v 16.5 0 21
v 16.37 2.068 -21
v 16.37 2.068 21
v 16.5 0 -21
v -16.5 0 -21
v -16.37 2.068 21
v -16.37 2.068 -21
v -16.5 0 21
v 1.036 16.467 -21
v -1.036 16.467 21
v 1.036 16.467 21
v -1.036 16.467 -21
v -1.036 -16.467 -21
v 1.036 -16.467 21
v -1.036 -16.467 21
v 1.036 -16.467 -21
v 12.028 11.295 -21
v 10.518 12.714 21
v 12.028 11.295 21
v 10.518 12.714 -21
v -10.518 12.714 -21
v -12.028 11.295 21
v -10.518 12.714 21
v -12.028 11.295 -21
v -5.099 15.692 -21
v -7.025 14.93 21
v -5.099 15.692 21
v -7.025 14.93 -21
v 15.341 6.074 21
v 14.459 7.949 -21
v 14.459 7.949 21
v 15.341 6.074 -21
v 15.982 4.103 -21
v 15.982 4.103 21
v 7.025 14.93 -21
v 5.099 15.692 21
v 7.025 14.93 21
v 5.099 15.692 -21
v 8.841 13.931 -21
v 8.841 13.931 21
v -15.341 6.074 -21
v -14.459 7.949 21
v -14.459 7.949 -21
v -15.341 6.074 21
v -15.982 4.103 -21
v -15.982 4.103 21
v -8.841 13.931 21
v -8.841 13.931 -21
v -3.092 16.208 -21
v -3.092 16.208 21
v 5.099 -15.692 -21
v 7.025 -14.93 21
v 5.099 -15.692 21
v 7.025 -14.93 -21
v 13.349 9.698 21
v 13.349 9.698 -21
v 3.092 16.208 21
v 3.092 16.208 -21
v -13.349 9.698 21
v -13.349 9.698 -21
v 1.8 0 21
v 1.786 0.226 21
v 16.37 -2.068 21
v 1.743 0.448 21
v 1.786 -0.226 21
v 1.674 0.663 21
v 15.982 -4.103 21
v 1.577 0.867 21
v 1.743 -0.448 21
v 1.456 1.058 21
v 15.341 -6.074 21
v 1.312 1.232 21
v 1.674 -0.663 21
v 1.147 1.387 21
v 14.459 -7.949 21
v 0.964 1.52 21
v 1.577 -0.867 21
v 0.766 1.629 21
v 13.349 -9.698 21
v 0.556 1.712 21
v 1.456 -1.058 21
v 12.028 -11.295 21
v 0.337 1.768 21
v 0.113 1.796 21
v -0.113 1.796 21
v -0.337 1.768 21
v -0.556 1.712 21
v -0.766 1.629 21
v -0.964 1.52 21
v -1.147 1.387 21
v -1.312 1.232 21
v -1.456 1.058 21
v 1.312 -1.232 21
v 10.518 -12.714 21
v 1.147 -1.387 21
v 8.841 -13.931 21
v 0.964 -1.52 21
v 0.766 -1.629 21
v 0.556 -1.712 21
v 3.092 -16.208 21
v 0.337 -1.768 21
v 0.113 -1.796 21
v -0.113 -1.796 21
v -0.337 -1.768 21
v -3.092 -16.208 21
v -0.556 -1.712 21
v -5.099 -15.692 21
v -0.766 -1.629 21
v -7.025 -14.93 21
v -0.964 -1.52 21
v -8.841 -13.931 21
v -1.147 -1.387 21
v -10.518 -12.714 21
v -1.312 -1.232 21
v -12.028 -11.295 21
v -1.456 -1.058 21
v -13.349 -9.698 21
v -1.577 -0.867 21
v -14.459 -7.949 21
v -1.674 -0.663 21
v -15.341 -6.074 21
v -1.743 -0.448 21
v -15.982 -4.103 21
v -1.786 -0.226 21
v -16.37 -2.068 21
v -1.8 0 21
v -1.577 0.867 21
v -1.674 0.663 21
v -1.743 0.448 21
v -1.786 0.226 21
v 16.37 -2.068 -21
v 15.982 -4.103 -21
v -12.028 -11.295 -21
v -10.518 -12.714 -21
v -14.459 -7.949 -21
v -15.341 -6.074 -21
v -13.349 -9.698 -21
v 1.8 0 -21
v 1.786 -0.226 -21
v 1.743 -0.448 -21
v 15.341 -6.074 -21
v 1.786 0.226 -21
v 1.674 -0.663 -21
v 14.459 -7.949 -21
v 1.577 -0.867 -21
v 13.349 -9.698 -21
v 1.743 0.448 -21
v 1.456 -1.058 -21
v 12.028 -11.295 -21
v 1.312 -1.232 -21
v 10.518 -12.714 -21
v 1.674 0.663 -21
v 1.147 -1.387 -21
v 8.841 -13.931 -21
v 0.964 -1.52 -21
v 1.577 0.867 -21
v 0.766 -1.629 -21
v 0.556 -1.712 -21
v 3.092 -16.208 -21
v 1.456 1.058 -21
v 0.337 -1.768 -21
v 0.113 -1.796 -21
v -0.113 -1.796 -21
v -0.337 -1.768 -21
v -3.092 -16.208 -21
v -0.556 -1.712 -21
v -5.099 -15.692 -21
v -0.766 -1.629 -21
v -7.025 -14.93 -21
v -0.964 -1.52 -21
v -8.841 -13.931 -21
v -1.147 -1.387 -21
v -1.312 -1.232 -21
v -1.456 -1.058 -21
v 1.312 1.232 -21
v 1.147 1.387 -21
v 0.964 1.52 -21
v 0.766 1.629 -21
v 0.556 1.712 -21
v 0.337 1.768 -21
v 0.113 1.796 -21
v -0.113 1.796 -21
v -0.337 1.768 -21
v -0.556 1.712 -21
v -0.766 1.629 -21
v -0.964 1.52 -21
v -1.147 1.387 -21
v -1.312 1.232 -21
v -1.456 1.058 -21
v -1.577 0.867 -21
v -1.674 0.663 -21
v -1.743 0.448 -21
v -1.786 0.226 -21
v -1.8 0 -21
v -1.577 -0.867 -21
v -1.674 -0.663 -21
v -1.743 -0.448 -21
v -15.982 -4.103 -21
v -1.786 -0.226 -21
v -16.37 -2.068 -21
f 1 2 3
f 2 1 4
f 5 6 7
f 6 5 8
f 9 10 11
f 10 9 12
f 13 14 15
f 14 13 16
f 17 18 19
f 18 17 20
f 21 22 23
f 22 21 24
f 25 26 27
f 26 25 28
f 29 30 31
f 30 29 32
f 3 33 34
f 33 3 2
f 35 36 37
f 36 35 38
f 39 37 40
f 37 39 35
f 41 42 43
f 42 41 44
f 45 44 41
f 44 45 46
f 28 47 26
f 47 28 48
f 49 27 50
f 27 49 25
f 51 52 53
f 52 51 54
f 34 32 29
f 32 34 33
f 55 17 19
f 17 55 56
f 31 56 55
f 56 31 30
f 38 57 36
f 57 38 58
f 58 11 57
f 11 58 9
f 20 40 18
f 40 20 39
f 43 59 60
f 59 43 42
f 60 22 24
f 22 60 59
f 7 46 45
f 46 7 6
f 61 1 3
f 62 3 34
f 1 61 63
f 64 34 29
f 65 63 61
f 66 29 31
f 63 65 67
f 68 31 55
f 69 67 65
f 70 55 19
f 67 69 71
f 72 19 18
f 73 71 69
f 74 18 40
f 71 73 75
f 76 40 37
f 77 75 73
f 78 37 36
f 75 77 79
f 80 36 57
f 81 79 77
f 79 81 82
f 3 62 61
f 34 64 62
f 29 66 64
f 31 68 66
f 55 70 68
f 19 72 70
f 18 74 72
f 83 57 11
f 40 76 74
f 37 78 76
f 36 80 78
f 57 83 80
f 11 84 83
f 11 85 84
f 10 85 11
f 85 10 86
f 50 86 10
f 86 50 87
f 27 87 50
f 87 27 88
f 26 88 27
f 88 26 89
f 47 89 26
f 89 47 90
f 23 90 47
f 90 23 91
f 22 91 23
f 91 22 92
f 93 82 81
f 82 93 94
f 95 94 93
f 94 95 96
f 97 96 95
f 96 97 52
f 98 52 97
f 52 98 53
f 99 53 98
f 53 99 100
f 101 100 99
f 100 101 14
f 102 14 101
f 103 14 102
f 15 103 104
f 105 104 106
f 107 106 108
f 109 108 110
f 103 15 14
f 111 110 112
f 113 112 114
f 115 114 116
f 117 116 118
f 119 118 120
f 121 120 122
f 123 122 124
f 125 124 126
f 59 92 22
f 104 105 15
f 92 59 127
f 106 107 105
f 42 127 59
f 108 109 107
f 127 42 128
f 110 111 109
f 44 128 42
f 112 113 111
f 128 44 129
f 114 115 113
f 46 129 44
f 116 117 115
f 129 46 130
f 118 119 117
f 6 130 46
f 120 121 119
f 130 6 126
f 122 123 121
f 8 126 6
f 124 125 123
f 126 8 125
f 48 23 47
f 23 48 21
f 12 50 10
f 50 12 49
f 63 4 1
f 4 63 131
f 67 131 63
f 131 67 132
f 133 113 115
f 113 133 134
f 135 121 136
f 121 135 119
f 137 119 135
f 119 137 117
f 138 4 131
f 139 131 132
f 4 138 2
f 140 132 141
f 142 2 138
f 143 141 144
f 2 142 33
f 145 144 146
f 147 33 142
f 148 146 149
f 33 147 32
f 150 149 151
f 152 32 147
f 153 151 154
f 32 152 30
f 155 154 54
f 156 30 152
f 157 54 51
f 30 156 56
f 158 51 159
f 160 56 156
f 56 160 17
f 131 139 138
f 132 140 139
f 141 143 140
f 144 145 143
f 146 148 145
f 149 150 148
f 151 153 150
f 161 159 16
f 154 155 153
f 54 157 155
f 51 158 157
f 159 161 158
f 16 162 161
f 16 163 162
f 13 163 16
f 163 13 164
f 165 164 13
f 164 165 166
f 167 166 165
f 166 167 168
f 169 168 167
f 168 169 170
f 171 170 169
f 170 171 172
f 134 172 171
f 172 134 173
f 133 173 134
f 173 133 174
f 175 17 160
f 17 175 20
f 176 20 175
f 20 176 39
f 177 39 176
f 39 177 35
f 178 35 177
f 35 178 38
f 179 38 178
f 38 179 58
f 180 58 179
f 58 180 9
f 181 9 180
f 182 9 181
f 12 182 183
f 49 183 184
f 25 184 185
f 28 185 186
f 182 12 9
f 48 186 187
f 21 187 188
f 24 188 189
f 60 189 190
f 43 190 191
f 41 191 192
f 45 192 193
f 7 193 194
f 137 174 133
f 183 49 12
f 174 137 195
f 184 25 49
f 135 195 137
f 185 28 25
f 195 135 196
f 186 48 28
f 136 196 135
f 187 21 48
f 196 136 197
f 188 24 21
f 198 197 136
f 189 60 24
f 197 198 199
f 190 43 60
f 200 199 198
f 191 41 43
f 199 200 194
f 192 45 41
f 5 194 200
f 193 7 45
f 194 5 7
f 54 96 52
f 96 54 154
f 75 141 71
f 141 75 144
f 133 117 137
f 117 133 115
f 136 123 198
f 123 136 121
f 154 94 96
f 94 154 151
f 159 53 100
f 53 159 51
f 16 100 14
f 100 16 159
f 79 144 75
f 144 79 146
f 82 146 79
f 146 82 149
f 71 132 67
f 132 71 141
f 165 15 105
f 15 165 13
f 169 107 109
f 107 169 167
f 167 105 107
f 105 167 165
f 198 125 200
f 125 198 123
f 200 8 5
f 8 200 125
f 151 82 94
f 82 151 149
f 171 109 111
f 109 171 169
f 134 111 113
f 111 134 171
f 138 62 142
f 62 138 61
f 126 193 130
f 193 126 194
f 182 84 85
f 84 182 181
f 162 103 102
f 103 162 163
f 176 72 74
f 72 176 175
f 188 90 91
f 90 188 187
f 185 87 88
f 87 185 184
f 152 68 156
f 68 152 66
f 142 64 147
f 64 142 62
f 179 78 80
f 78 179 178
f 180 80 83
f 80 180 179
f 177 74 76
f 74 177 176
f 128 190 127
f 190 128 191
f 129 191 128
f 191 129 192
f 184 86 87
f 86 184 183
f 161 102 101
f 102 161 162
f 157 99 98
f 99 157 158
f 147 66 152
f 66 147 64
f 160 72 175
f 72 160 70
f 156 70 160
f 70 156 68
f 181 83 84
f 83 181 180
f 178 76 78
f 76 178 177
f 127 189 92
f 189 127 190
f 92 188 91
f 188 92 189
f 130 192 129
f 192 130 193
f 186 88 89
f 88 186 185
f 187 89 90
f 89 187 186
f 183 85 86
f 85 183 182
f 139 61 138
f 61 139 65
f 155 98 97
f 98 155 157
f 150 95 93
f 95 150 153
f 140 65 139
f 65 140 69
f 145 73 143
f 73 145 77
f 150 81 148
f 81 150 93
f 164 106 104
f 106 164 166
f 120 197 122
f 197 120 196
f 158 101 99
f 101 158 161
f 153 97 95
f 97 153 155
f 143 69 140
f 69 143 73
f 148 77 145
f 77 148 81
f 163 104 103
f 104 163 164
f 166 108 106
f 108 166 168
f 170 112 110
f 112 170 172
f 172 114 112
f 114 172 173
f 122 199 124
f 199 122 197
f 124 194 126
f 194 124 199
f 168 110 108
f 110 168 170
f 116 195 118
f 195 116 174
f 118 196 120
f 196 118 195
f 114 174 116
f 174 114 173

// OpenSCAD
$fn = 50;


difference() {
	union() {
		translate(v = [0, 0, -21.0000000000]) {
			cylinder(h = 42, r = 16.5000000000);
		}
	}
	union() {
		translate(v = [0, 0, -100.0000000000]) {
			cylinder(h = 200, r = 1.8000000000);
		}
	}
}
